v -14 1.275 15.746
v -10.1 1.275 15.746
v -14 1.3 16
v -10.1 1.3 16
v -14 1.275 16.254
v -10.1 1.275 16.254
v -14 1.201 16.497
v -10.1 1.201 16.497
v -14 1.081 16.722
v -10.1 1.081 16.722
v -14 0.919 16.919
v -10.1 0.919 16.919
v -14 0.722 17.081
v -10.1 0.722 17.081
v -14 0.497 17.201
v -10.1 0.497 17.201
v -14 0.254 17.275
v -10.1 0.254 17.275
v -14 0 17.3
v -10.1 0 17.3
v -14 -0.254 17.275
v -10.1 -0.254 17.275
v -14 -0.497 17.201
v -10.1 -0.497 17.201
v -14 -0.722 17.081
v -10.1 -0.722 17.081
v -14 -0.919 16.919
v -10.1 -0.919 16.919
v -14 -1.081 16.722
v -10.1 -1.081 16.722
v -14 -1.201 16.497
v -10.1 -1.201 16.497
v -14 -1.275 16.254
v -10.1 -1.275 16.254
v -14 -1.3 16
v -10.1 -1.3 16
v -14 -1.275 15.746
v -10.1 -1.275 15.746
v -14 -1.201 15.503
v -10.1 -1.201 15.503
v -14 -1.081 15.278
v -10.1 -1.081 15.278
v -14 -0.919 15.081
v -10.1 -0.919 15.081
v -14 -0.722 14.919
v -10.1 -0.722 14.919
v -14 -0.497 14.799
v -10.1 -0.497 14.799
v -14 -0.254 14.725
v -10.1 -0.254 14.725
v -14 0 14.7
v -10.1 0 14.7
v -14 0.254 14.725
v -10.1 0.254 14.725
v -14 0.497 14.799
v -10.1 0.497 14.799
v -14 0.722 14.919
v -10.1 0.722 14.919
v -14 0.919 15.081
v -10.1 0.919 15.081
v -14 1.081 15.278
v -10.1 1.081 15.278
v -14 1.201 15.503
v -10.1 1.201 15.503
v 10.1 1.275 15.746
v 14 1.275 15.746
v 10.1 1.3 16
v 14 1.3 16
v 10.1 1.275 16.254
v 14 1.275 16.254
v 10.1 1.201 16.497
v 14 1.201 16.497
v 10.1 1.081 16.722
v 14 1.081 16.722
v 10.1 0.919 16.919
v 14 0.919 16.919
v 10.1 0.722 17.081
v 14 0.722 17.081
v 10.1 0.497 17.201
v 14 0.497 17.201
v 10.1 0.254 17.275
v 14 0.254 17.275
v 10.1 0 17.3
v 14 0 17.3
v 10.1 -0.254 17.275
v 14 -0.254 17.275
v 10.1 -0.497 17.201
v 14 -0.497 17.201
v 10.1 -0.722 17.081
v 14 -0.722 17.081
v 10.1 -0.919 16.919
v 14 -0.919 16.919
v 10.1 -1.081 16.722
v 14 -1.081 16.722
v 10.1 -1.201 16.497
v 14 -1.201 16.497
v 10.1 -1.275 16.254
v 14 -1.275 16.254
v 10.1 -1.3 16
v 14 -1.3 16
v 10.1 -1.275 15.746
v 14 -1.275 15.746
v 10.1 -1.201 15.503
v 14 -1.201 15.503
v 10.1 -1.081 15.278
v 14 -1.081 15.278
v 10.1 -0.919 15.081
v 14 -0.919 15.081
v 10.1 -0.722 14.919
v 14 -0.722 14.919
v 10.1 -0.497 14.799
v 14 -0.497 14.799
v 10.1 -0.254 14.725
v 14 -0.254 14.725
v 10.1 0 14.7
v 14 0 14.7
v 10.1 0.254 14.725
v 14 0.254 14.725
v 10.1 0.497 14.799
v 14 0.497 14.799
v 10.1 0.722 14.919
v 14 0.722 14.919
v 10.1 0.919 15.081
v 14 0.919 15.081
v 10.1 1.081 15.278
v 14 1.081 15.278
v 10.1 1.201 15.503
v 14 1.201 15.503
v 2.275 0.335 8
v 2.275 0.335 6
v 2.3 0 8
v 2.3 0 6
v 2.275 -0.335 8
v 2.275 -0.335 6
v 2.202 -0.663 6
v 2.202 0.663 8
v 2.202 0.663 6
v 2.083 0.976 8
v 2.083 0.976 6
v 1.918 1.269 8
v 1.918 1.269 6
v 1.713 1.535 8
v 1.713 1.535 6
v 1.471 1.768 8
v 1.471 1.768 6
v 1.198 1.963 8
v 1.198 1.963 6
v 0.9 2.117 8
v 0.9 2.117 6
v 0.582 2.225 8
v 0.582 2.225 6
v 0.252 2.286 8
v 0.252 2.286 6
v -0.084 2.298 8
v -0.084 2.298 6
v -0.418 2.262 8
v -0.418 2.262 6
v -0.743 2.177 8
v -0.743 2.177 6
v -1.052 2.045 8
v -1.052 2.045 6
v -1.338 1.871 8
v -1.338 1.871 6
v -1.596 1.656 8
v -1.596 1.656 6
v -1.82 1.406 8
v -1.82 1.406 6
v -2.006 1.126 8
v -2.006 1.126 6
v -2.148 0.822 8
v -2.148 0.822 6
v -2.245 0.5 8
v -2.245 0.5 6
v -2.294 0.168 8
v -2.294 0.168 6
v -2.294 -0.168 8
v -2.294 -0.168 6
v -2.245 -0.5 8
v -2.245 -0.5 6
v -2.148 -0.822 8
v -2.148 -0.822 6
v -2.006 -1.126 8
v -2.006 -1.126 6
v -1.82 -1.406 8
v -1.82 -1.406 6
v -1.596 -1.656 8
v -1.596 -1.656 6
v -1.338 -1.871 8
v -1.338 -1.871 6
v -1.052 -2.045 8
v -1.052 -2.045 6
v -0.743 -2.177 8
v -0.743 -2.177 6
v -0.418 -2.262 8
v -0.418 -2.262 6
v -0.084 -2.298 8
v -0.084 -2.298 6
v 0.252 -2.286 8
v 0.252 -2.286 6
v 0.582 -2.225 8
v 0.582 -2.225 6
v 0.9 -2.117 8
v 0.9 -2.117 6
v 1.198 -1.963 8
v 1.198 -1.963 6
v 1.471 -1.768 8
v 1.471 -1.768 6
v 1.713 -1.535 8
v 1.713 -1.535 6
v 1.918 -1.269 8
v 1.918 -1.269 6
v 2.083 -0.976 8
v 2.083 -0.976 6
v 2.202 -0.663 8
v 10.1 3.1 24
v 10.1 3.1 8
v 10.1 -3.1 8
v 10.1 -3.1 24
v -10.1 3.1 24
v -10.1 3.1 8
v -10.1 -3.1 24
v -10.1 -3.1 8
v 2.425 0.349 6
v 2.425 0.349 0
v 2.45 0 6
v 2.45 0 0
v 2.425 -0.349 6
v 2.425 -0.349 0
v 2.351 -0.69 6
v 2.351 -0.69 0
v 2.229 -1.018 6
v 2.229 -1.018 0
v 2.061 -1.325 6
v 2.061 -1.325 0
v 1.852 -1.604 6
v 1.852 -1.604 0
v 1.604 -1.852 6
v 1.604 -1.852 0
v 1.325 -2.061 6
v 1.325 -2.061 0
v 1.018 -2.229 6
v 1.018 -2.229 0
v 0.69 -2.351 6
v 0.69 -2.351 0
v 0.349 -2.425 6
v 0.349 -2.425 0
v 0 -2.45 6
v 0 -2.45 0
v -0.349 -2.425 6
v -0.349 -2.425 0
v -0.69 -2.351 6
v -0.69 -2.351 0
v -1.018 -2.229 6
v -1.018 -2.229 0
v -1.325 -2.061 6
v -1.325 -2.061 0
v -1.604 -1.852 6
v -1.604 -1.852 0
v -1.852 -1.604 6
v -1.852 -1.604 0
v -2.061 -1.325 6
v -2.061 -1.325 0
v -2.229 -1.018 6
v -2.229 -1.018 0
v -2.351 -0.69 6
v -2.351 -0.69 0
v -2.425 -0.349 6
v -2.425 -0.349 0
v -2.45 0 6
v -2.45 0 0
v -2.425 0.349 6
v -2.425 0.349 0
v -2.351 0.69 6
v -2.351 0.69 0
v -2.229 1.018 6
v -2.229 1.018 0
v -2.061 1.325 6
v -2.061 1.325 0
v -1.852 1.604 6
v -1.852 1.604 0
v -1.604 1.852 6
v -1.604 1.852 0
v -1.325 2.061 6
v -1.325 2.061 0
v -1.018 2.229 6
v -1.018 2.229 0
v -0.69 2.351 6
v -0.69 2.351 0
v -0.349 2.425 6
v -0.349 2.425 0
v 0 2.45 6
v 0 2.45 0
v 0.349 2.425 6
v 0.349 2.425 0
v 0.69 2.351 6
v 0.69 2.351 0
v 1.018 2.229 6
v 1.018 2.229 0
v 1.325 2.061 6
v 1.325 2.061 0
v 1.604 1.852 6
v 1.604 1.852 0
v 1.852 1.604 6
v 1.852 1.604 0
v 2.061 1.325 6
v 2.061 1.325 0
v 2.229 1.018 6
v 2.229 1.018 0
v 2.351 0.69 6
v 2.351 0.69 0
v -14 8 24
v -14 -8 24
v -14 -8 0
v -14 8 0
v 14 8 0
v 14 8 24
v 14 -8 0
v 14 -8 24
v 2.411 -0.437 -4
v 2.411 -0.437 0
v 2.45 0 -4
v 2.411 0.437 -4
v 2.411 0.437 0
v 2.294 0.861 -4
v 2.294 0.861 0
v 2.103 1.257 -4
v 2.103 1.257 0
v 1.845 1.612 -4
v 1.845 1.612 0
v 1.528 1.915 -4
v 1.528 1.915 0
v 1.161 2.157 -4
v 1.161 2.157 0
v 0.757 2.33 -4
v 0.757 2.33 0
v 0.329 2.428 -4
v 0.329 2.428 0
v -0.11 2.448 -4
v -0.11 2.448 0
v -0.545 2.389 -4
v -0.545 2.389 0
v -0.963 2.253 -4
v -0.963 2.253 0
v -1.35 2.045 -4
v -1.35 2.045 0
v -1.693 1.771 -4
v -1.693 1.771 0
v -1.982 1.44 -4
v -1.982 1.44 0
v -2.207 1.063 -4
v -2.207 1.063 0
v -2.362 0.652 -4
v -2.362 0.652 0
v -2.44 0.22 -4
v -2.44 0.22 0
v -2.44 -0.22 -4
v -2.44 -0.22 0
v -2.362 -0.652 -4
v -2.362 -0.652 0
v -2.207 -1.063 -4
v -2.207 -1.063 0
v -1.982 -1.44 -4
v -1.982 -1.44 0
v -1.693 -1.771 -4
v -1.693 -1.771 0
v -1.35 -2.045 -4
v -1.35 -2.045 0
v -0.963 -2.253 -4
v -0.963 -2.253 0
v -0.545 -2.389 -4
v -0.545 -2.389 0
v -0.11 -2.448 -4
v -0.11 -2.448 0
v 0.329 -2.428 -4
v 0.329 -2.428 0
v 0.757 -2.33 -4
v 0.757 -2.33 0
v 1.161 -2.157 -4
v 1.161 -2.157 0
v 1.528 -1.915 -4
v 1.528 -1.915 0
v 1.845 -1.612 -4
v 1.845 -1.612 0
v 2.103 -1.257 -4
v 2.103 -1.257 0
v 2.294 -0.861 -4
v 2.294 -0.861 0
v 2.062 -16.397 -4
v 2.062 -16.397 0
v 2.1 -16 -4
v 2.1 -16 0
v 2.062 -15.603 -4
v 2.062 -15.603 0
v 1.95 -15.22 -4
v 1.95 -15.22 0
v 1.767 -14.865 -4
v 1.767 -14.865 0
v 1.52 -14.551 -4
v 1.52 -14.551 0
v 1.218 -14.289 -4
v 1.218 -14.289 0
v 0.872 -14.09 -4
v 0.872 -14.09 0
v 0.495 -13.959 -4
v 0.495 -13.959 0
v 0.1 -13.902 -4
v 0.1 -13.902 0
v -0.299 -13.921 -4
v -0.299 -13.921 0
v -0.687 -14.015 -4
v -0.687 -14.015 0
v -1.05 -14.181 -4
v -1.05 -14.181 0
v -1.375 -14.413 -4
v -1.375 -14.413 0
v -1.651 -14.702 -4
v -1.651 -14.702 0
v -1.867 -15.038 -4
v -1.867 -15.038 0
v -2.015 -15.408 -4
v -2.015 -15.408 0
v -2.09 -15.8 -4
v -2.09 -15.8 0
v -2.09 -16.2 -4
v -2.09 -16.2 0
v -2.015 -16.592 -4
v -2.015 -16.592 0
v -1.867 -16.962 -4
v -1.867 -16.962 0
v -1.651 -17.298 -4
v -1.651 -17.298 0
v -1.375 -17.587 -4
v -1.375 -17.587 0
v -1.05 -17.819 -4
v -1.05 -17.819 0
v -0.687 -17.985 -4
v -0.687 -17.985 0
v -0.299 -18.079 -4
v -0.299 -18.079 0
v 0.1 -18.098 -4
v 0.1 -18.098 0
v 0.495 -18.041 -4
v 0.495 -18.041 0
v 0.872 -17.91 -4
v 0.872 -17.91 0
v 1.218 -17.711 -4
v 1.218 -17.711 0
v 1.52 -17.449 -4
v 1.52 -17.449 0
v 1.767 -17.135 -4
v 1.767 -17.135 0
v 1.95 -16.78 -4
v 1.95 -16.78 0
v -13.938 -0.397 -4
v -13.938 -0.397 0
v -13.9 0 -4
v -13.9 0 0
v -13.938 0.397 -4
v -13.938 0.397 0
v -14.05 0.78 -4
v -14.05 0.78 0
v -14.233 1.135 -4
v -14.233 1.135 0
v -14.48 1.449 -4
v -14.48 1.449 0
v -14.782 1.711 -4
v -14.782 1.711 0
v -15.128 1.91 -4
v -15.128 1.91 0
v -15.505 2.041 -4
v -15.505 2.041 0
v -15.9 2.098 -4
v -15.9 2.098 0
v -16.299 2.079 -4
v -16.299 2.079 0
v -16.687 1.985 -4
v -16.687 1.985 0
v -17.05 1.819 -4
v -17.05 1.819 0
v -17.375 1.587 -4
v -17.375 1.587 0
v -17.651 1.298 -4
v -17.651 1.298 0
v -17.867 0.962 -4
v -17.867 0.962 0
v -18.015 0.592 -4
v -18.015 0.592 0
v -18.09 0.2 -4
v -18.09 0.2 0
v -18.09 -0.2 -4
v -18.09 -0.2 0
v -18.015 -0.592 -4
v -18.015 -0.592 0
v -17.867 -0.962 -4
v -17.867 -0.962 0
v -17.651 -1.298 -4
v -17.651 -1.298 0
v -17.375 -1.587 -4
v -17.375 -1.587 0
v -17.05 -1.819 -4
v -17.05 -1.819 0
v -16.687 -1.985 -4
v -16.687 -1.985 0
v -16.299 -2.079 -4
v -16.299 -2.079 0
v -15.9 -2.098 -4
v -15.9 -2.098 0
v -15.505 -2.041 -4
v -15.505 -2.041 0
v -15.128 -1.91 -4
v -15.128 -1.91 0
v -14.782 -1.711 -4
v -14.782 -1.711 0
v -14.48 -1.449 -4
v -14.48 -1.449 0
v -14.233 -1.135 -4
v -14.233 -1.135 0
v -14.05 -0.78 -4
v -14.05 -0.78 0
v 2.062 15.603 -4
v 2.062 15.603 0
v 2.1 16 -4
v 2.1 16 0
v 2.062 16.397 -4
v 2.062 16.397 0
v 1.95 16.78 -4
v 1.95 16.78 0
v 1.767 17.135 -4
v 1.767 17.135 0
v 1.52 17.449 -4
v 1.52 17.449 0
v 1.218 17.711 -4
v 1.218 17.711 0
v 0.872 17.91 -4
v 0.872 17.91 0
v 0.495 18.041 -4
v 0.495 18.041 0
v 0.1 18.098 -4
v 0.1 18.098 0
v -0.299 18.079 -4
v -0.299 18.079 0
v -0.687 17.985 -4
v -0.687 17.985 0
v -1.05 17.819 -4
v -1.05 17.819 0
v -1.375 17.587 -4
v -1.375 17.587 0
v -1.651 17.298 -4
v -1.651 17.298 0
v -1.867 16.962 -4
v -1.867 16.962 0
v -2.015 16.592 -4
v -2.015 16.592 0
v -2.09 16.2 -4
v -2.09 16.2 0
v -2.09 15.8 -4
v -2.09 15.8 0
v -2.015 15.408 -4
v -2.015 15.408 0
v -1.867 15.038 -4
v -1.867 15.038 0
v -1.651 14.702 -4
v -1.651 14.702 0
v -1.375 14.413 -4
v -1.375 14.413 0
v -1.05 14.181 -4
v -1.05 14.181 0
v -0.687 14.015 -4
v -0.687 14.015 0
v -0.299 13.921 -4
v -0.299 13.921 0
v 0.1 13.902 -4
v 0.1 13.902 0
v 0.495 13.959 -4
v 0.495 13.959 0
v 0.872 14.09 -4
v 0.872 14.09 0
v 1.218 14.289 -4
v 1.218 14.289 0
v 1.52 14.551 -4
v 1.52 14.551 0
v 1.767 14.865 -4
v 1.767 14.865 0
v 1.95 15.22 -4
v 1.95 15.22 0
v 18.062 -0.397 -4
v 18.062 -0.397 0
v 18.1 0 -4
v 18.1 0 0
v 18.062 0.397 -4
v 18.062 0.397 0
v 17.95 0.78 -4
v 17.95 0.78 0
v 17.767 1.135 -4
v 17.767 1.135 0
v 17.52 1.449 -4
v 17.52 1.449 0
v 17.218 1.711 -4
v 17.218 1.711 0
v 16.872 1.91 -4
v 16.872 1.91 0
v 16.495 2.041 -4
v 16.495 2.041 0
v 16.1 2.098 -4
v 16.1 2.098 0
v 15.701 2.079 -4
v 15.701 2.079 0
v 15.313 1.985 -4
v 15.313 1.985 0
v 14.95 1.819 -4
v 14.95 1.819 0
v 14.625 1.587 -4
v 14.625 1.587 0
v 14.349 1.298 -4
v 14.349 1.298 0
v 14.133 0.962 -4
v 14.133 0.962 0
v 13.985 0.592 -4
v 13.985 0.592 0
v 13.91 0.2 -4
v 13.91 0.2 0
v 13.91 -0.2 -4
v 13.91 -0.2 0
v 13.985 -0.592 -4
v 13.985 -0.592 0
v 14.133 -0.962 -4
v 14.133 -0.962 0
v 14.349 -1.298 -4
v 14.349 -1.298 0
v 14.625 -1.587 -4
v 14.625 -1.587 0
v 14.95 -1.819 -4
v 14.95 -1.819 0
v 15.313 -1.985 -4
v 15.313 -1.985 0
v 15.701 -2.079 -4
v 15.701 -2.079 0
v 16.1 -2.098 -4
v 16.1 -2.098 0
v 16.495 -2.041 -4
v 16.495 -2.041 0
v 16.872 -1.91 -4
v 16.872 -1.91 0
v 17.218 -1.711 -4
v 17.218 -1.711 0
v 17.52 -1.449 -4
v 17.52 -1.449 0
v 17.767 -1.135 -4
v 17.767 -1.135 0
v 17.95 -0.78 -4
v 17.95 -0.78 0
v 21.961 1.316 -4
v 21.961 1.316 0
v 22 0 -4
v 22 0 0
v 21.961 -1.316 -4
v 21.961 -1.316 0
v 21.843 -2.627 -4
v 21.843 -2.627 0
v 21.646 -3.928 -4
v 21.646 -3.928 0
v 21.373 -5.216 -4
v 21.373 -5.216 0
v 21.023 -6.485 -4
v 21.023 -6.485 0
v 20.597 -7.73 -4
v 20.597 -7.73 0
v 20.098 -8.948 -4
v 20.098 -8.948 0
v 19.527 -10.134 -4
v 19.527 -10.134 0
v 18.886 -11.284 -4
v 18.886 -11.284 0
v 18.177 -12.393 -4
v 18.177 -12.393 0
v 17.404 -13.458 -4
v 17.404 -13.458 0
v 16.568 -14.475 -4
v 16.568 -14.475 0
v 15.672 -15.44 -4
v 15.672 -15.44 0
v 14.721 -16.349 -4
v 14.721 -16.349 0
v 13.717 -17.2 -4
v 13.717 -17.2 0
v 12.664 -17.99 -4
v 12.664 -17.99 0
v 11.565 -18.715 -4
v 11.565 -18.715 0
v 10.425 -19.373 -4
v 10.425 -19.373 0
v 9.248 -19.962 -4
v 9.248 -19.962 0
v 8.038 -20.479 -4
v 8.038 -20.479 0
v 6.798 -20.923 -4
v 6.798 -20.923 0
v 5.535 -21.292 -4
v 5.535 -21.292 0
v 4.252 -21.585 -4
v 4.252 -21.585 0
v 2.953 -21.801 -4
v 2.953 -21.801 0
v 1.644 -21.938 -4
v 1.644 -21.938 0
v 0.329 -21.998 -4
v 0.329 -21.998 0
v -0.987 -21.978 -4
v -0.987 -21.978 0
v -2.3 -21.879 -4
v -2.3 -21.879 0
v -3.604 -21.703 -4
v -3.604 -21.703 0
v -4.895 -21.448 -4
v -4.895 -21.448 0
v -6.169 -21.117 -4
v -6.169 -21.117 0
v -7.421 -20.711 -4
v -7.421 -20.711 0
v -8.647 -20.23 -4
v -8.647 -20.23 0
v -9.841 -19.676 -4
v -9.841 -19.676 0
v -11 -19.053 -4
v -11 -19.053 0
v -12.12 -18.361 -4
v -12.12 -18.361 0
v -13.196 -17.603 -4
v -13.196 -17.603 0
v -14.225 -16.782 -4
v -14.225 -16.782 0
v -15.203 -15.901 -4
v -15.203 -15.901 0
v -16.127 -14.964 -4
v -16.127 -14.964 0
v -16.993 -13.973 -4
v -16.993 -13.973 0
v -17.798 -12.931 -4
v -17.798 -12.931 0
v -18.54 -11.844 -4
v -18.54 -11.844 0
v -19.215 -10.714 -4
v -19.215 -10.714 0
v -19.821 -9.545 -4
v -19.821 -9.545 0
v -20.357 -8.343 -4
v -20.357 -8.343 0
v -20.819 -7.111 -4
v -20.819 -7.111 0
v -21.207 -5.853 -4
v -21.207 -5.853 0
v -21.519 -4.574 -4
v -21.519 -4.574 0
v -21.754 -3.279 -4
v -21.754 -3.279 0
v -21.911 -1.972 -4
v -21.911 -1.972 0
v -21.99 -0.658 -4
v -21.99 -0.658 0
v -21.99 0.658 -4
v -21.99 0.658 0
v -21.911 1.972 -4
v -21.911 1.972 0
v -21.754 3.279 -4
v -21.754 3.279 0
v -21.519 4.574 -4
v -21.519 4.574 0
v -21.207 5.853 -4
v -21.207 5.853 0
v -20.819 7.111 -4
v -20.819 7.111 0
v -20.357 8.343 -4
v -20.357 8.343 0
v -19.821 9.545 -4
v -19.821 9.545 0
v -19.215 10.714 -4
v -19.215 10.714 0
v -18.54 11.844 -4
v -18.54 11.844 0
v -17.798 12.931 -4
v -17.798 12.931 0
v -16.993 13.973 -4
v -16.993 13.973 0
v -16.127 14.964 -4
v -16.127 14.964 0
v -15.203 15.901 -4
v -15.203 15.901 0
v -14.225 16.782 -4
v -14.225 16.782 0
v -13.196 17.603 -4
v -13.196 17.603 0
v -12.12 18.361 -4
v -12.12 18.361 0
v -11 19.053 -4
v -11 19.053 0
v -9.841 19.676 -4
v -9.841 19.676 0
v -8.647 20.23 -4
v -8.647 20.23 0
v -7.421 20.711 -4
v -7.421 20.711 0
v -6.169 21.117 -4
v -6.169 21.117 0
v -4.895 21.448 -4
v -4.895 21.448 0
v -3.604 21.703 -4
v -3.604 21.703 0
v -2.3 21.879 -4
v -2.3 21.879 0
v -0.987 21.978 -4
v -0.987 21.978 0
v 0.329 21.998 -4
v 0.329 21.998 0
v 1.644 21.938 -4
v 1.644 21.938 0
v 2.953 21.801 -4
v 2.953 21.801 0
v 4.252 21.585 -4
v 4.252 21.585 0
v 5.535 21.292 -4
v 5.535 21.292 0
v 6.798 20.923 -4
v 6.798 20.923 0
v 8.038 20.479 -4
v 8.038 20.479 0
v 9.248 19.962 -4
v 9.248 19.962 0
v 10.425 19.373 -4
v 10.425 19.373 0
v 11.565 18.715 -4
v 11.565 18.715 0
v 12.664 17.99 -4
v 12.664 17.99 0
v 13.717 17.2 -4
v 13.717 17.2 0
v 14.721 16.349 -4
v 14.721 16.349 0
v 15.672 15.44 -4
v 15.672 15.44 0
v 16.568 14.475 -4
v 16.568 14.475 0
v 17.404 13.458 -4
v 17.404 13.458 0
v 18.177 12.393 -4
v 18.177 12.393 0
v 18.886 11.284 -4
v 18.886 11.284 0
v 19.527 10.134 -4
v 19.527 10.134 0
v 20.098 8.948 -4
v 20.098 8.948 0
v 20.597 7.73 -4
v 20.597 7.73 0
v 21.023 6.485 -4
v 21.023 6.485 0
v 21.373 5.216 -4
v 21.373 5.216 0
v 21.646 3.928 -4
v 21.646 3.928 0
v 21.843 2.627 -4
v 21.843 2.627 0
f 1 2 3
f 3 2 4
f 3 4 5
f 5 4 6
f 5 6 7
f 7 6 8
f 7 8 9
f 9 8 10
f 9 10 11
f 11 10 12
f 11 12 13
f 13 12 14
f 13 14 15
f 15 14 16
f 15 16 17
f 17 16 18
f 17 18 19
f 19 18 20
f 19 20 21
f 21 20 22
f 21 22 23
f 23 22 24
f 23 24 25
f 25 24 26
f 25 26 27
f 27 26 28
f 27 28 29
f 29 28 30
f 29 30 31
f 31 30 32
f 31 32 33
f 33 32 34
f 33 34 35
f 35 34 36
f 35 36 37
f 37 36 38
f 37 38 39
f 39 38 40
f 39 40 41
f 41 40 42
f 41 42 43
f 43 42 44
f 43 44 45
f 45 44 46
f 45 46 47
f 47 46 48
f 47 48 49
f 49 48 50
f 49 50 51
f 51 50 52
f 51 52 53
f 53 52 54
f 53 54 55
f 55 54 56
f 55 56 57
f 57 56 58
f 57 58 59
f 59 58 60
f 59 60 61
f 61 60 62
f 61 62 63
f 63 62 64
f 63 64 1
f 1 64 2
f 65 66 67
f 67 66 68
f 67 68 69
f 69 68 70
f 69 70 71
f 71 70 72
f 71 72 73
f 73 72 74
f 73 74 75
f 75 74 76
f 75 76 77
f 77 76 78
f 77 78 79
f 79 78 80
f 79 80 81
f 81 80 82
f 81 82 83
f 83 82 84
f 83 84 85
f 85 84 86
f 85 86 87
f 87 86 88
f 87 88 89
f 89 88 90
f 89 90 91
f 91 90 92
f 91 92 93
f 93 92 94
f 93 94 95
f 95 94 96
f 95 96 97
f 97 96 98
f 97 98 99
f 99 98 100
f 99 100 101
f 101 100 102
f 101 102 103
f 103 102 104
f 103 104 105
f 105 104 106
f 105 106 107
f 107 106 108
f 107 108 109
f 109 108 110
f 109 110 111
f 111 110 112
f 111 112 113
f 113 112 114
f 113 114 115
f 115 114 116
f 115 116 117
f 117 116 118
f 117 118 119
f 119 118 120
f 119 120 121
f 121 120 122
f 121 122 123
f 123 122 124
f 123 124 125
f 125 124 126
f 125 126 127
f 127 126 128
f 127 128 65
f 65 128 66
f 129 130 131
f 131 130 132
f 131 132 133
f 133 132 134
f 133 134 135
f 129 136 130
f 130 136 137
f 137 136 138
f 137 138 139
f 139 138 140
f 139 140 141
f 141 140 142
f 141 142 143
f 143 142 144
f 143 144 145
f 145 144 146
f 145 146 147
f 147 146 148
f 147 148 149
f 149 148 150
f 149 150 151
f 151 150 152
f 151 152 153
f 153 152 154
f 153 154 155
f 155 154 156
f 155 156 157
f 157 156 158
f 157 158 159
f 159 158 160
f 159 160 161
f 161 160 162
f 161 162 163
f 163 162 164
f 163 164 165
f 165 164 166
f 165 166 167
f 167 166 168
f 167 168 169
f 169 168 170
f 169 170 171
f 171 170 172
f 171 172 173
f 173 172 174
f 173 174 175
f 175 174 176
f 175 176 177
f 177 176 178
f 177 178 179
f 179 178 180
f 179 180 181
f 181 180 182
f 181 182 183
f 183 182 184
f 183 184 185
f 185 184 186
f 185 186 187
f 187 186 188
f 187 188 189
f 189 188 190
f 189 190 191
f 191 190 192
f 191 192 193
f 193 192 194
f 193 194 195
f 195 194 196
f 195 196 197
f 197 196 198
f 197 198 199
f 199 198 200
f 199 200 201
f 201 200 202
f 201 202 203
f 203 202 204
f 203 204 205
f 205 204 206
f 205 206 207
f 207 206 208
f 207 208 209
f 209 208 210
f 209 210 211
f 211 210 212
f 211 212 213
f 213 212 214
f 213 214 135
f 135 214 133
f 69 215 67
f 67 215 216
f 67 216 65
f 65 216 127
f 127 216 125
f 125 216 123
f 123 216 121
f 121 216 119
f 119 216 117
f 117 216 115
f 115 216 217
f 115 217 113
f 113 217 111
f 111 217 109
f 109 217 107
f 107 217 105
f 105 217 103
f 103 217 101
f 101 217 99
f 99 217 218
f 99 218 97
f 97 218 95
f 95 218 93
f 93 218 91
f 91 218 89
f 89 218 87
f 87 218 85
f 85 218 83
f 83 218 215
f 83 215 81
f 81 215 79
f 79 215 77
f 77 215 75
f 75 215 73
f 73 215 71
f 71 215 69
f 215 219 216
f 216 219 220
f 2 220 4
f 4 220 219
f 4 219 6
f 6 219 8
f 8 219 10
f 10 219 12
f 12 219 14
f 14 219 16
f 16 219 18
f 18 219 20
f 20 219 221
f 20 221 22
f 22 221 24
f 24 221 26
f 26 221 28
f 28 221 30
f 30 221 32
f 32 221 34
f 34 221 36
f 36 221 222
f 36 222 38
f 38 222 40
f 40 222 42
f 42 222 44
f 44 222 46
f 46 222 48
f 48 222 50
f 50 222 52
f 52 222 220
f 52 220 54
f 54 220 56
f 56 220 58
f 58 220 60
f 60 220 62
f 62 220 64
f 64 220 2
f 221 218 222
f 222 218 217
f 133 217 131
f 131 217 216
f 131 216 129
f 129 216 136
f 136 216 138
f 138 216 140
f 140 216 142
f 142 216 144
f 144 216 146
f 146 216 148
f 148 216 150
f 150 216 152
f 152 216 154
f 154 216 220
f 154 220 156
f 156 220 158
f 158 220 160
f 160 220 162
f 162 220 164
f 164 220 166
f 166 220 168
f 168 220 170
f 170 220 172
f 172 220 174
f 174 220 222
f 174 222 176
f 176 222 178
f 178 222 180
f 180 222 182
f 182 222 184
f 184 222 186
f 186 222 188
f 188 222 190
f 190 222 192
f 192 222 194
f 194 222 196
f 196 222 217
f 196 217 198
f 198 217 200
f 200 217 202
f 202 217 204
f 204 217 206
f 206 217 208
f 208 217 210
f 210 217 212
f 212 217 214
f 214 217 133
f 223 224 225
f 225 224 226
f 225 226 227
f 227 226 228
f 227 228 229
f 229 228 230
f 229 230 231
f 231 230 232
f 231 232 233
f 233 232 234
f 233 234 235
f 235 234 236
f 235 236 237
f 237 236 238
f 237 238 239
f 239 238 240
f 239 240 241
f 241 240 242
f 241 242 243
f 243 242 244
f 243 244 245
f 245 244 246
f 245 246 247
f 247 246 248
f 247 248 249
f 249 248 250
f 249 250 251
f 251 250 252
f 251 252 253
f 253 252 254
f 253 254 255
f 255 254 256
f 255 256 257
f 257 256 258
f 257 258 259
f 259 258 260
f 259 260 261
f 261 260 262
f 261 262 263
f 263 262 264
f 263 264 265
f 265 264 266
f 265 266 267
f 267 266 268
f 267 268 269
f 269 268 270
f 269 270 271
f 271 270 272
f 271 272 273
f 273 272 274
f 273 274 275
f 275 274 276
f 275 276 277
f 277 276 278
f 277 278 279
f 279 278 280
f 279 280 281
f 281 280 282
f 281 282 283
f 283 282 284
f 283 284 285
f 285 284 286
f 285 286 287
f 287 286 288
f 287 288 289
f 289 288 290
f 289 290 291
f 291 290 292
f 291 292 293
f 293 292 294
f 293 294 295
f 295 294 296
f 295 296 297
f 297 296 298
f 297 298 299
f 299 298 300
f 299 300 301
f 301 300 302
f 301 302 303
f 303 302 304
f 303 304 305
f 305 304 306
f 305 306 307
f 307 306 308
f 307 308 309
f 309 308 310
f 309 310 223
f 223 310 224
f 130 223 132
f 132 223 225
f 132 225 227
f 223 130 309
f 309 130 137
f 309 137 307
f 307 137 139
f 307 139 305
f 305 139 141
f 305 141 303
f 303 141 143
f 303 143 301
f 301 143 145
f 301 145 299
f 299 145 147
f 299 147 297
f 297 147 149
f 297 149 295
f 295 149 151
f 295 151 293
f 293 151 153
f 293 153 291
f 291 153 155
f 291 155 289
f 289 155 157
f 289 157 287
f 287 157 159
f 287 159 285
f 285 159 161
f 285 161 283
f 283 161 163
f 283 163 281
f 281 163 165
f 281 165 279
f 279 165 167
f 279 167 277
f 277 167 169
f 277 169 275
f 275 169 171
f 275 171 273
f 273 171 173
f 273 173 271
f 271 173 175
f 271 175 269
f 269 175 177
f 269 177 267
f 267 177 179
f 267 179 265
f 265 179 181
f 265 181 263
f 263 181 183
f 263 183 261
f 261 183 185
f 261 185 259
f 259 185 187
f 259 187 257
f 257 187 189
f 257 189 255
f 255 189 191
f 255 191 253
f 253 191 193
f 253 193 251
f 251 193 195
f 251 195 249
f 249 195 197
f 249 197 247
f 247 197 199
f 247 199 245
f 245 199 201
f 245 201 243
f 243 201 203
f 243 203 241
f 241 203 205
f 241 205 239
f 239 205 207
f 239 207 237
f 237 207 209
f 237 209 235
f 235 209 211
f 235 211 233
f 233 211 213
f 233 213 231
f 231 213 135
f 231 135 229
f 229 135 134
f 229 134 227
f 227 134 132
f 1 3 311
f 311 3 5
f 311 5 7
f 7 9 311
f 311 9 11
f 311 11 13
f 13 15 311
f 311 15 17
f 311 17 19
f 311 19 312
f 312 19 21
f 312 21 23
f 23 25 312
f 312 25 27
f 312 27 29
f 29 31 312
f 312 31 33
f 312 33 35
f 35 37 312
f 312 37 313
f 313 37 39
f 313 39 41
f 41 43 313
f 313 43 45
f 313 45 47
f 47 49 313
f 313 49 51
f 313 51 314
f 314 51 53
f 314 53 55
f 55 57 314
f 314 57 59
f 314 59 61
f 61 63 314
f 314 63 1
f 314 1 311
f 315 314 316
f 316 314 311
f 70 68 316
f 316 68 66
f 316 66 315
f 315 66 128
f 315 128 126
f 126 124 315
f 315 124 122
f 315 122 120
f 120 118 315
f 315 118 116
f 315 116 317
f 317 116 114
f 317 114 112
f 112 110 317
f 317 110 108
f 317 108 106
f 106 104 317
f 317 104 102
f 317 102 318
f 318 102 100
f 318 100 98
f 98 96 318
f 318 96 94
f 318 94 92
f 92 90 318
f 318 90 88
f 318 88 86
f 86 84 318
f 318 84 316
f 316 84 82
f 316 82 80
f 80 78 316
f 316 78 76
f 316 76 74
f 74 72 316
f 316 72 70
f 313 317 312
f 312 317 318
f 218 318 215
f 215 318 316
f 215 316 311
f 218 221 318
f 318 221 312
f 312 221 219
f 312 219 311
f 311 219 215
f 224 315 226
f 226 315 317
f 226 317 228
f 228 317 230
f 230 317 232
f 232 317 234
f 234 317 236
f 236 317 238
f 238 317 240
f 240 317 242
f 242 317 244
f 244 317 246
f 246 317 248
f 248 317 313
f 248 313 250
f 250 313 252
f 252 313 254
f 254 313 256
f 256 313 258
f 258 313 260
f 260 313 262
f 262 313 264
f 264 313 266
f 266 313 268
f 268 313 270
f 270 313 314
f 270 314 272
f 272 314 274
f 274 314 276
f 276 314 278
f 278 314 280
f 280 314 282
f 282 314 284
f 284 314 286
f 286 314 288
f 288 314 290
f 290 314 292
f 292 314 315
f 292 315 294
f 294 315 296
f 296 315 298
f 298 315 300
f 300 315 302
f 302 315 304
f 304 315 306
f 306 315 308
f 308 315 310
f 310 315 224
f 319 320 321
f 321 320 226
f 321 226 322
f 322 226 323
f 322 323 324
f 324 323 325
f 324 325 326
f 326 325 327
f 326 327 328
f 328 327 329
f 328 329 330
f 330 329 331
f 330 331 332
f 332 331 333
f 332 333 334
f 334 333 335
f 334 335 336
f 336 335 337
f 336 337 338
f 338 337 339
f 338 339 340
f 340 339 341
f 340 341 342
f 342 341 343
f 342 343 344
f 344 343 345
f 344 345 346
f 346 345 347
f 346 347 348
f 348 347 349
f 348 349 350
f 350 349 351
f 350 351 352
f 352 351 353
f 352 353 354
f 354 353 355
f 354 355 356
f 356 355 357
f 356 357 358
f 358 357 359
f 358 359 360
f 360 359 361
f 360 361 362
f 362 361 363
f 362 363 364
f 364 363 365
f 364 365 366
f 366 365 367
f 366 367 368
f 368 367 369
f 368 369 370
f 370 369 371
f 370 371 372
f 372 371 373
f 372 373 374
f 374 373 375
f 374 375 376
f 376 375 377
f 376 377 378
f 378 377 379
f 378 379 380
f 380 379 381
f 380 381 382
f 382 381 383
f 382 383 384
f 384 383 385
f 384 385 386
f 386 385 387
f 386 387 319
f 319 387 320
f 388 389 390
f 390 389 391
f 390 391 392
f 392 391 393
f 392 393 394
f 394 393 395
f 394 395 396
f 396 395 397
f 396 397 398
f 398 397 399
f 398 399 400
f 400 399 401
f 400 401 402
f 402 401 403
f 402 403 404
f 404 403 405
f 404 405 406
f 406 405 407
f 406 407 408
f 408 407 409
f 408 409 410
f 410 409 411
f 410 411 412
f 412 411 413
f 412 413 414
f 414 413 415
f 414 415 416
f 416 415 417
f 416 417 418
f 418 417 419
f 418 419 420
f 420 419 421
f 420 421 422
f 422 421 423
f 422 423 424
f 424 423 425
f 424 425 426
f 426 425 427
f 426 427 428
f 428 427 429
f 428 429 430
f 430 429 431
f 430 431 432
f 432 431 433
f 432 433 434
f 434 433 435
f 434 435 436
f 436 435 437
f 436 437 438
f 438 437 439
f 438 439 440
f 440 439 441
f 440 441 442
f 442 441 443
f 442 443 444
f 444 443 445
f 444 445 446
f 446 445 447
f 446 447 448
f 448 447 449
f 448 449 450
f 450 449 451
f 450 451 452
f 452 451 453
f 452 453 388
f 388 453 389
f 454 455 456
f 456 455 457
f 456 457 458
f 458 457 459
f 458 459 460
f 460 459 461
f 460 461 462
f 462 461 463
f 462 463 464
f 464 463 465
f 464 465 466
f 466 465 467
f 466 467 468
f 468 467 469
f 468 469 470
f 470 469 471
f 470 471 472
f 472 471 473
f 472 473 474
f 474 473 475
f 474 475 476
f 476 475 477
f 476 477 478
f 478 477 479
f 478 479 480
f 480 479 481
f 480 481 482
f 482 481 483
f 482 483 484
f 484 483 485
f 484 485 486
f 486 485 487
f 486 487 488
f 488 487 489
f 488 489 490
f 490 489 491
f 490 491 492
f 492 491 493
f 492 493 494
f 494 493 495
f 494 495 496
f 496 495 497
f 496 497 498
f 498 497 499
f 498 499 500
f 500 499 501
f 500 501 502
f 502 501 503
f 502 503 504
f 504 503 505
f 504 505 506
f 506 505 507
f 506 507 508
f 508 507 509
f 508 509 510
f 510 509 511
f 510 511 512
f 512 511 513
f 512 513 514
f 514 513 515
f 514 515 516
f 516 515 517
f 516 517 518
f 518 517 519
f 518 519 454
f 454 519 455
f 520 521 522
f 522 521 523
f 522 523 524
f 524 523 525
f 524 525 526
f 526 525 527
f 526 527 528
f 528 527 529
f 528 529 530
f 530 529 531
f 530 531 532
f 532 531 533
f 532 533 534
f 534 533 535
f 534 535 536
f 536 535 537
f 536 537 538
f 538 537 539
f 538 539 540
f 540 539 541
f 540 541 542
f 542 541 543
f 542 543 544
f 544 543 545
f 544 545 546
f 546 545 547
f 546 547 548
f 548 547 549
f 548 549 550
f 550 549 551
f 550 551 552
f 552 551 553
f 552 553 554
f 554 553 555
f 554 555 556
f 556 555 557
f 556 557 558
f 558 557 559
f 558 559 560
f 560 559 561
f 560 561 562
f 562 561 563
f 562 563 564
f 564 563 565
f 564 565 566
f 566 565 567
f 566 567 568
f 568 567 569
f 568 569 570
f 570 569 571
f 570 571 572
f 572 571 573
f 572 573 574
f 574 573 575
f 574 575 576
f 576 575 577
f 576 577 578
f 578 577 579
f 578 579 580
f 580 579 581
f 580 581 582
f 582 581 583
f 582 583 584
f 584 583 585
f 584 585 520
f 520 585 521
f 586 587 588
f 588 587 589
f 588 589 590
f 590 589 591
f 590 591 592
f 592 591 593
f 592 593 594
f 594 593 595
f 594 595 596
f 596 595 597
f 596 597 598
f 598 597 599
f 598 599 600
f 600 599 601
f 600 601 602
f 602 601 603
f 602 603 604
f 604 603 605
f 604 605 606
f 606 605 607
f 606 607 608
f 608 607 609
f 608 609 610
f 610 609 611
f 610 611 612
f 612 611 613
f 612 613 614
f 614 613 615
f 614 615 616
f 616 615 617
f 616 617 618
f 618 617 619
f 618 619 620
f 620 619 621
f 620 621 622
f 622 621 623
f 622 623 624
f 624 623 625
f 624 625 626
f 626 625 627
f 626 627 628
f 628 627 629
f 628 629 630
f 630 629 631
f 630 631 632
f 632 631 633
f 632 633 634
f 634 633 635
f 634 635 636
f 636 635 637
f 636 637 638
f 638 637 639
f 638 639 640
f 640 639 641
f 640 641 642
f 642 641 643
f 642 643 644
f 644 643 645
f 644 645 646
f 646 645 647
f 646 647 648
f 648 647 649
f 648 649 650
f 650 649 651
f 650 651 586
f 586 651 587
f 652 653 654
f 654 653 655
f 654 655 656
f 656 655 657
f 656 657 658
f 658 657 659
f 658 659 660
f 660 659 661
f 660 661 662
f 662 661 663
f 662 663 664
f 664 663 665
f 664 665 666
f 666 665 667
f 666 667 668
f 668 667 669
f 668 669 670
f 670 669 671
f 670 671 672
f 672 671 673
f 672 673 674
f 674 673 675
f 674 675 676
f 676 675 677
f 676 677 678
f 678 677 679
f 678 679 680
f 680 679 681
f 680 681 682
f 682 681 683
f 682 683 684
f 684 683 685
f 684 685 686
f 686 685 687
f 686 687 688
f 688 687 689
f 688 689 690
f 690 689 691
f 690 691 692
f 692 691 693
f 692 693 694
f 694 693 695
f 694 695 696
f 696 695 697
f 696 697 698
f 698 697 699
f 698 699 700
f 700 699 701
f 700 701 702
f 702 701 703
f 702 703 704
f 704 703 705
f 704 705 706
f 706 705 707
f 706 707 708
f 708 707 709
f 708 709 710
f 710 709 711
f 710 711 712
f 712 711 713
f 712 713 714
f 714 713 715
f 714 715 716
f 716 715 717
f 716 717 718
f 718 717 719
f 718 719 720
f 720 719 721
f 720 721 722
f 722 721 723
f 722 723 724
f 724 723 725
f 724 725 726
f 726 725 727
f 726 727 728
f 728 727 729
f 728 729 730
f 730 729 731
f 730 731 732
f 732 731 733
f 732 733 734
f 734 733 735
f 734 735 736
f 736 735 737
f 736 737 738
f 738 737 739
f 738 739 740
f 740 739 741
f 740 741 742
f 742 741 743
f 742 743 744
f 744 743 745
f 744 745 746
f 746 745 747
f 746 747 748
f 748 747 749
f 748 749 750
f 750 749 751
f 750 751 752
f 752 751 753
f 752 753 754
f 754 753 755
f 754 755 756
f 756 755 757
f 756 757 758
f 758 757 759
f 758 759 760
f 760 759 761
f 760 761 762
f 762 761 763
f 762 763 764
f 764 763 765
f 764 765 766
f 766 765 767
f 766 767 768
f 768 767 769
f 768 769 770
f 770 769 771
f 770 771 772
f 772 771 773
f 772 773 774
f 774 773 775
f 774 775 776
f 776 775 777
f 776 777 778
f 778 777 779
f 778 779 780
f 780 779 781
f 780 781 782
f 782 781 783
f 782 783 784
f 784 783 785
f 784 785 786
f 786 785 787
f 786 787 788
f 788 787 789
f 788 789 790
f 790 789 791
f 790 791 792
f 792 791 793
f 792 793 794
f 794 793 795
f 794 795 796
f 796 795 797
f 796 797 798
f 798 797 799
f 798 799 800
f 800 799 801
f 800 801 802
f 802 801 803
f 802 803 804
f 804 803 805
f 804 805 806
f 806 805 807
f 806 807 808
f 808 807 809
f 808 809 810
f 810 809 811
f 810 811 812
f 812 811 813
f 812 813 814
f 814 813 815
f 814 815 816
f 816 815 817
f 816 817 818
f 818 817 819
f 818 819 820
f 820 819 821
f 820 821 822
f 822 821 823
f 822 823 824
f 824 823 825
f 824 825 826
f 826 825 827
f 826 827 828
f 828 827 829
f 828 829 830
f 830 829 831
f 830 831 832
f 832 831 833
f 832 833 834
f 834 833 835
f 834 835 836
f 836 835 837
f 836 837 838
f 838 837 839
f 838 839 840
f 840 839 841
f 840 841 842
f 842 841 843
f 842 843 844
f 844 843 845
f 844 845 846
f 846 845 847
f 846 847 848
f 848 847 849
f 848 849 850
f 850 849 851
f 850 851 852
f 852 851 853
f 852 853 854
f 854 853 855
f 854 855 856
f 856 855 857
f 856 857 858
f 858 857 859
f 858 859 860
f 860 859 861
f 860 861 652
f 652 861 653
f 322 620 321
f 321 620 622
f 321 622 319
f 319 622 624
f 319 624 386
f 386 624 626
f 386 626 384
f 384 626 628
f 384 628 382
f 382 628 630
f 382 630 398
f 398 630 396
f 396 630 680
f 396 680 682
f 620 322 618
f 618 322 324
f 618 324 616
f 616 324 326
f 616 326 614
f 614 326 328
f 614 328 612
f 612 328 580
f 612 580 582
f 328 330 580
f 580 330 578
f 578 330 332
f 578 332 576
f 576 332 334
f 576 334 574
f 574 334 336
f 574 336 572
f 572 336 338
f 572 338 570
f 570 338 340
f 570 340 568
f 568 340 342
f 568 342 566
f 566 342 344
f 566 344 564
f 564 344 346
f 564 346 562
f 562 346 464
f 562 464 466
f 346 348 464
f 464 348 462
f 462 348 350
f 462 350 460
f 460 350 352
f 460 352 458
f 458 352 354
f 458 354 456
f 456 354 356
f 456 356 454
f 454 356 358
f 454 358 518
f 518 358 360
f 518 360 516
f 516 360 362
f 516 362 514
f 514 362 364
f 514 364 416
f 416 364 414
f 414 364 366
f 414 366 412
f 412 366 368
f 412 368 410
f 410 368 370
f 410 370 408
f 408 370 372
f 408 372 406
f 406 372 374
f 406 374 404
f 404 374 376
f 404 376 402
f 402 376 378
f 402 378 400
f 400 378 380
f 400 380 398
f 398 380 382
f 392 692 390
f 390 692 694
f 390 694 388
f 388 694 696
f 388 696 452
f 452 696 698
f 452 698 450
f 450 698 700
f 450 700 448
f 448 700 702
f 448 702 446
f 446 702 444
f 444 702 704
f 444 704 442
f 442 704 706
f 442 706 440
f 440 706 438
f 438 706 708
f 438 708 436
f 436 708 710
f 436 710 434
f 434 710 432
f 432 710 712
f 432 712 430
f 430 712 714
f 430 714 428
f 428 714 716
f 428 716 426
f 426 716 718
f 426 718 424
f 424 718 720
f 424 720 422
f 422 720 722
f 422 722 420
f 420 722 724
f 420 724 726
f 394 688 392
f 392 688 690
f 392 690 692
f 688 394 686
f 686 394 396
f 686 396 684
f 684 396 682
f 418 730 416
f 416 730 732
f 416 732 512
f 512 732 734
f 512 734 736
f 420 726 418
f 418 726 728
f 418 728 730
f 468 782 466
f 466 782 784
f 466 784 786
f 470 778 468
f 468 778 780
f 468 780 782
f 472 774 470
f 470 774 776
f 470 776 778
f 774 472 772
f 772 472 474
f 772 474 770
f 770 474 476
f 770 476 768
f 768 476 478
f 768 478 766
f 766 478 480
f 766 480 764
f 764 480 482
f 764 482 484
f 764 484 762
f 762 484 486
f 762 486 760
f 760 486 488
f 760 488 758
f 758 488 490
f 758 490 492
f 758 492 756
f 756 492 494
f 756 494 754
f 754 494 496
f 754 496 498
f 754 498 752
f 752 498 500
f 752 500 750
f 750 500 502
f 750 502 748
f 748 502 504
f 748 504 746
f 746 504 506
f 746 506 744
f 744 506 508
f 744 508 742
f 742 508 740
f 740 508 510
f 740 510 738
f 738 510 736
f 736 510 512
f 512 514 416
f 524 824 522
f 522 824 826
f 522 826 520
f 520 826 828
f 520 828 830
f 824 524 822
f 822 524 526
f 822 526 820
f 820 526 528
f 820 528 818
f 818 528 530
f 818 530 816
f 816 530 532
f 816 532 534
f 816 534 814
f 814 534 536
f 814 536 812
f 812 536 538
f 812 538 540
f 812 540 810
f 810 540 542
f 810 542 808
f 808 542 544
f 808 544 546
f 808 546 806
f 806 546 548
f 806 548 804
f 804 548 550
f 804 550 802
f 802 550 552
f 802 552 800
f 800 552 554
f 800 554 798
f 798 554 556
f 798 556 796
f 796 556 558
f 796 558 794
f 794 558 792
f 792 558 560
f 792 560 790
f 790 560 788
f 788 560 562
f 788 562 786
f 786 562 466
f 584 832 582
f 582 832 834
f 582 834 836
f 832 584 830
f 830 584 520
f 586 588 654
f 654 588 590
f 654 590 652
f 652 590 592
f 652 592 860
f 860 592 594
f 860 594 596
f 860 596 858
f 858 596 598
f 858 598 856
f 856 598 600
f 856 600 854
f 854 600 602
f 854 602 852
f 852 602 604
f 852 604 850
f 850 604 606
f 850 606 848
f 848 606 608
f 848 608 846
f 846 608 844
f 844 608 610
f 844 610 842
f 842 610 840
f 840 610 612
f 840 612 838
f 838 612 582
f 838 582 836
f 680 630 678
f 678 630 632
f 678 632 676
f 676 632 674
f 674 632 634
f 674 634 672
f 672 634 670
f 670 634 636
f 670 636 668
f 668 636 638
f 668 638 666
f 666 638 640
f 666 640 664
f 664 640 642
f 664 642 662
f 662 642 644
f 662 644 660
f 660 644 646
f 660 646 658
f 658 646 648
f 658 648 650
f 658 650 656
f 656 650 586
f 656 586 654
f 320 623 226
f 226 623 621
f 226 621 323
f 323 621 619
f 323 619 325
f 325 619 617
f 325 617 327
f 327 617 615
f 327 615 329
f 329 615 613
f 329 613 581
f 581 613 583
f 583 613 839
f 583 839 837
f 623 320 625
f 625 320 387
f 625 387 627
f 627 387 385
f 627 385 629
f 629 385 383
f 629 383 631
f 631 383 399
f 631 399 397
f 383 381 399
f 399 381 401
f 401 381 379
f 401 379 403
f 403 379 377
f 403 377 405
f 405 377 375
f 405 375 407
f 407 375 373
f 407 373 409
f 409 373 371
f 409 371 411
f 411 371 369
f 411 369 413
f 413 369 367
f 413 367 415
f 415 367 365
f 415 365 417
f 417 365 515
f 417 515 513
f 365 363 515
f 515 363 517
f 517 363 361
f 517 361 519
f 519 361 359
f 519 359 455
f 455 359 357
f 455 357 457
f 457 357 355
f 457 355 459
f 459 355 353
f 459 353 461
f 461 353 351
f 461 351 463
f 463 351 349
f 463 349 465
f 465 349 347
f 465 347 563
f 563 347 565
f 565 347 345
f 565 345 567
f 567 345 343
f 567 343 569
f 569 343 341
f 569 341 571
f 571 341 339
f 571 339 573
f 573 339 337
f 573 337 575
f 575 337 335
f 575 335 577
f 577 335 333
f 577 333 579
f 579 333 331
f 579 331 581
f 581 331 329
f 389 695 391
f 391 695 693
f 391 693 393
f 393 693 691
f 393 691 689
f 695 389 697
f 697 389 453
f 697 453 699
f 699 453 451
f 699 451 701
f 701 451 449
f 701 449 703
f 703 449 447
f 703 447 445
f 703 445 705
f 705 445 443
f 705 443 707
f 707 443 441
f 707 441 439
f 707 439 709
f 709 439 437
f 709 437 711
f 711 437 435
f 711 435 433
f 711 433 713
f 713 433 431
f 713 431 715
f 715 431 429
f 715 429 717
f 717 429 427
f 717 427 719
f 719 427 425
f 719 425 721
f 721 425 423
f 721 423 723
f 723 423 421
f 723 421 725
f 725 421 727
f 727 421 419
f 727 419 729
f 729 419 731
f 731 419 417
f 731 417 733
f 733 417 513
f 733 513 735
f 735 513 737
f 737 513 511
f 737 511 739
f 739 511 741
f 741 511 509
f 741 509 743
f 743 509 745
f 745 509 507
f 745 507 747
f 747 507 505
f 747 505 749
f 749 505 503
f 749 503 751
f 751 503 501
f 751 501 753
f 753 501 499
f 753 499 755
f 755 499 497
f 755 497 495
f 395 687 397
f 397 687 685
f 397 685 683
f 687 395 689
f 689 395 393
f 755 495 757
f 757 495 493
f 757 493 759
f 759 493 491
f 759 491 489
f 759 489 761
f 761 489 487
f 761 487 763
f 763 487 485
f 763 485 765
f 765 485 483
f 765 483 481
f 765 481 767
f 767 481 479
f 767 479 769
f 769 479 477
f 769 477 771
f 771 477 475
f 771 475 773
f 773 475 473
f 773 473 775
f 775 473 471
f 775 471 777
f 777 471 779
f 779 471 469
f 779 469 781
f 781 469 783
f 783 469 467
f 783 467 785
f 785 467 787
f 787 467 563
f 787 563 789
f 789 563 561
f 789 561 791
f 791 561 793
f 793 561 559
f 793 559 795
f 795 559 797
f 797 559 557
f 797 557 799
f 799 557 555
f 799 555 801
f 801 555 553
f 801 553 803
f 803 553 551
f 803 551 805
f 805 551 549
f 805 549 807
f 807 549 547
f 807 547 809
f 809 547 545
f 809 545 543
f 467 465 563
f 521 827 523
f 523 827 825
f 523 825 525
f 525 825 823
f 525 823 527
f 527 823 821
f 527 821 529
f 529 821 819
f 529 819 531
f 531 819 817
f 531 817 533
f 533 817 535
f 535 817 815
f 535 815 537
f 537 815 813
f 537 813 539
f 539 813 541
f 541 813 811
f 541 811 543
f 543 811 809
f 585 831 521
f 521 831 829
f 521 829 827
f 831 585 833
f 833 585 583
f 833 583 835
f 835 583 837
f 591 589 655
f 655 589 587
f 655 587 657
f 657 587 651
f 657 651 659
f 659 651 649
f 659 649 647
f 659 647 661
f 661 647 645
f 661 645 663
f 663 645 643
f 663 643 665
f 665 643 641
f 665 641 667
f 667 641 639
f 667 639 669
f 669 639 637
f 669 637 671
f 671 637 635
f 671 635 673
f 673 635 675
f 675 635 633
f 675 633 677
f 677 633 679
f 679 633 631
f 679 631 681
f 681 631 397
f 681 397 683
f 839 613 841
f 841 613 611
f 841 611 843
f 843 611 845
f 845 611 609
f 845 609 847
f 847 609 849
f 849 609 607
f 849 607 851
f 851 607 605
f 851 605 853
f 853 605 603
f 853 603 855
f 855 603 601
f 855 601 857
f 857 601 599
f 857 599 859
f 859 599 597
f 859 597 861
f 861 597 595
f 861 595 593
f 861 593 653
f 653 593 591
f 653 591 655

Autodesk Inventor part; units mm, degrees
ref_plane "YZ Plane" through (0, 0, 0) normal (1, 0, 0) x (0, 1, 0)
ref_plane "XZ Plane" through (0, 0, 0) normal (0, 1, 0) x (-1, 0, 0)
sketch "Skizze1" plane through (0, 0, 0) normal (0, 0, 1) x (1, 0, 0)
  line L0 (-14, -8) -> (14, -8)
  line L1 (14, -8) -> (14, 8)
  line L2 (14, 8) -> (-14, 8)
  line L3 (-14, 8) -> (-14, -8)
extrude "Extrusion1" add sketch "Skizze1" along normal blind 24
sketch "Skizze2" plane through (0, 0, 0) normal (0, 0, 1) x (1, 0, 0)
  circle A0 centre (0, 0) radius 22
  circle A1 centre (0, 0) radius 2.45
  circle A2 centre (16, 0) radius 2.1
  circle A3 centre (0, 16) radius 2.1
  circle A4 centre (-16, 0) radius 2.1
  circle A5 centre (0, -16) radius 2.1
extrude "Extrusion2" add sketch "Skizze2" against normal blind 4 separate body
sketch "Skizze3" plane through (0, 0, 0) normal (0, 0, 1) x (1, 0, 0)
  circle A0 centre (0, 0) radius 2.45
extrude "Extrusion3" cut sketch "Skizze3" along normal blind 6 bodies 1
sketch "Skizze4" plane through (0, 0, 0) normal (0, 0, 1) x (1, 0, 0)
  circle A0 centre (0, 0) radius 1
extrude "Extrusion4" cut sketch "Skizze4" along normal blind 24.2 bodies 1
ref_plane "Arbeitsebene1" through (0, 0, 24) normal (0, 0, 1) x (1, 0, 0)
sketch "Skizze5" plane through (0, 0, 24) normal (0, 0, 1) x (1, 0, 0)
  line L0 (-10.1, -3.1) -> (10.1, -3.1)
  line L1 (10.1, -3.1) -> (10.1, 3.1)
  line L2 (10.1, 3.1) -> (-10.1, 3.1)
  line L3 (-10.1, 3.1) -> (-10.1, -3.1)
extrude "Extrusion5" cut sketch "Skizze5" against normal blind 16 bodies 1
sketch "Skizze6" plane through (0, 0, 24) normal (0, 0, 1) x (1, 0, 0)
  circle A0 centre (0, 0) radius 2.3
extrude "Extrusion6" cut sketch "Skizze6" against normal blind 18 bodies 1
sketch "Skizze7" plane through (0, 0, 0) normal (1, 0, 0) x (0, 1, 0)
  circle A0 centre (0, 16) radius 1.3
extrude "Extrusion7" cut sketch "Skizze7" along normal mid plane 30 bodies 1
properties part number "Dreh_Klemme"
